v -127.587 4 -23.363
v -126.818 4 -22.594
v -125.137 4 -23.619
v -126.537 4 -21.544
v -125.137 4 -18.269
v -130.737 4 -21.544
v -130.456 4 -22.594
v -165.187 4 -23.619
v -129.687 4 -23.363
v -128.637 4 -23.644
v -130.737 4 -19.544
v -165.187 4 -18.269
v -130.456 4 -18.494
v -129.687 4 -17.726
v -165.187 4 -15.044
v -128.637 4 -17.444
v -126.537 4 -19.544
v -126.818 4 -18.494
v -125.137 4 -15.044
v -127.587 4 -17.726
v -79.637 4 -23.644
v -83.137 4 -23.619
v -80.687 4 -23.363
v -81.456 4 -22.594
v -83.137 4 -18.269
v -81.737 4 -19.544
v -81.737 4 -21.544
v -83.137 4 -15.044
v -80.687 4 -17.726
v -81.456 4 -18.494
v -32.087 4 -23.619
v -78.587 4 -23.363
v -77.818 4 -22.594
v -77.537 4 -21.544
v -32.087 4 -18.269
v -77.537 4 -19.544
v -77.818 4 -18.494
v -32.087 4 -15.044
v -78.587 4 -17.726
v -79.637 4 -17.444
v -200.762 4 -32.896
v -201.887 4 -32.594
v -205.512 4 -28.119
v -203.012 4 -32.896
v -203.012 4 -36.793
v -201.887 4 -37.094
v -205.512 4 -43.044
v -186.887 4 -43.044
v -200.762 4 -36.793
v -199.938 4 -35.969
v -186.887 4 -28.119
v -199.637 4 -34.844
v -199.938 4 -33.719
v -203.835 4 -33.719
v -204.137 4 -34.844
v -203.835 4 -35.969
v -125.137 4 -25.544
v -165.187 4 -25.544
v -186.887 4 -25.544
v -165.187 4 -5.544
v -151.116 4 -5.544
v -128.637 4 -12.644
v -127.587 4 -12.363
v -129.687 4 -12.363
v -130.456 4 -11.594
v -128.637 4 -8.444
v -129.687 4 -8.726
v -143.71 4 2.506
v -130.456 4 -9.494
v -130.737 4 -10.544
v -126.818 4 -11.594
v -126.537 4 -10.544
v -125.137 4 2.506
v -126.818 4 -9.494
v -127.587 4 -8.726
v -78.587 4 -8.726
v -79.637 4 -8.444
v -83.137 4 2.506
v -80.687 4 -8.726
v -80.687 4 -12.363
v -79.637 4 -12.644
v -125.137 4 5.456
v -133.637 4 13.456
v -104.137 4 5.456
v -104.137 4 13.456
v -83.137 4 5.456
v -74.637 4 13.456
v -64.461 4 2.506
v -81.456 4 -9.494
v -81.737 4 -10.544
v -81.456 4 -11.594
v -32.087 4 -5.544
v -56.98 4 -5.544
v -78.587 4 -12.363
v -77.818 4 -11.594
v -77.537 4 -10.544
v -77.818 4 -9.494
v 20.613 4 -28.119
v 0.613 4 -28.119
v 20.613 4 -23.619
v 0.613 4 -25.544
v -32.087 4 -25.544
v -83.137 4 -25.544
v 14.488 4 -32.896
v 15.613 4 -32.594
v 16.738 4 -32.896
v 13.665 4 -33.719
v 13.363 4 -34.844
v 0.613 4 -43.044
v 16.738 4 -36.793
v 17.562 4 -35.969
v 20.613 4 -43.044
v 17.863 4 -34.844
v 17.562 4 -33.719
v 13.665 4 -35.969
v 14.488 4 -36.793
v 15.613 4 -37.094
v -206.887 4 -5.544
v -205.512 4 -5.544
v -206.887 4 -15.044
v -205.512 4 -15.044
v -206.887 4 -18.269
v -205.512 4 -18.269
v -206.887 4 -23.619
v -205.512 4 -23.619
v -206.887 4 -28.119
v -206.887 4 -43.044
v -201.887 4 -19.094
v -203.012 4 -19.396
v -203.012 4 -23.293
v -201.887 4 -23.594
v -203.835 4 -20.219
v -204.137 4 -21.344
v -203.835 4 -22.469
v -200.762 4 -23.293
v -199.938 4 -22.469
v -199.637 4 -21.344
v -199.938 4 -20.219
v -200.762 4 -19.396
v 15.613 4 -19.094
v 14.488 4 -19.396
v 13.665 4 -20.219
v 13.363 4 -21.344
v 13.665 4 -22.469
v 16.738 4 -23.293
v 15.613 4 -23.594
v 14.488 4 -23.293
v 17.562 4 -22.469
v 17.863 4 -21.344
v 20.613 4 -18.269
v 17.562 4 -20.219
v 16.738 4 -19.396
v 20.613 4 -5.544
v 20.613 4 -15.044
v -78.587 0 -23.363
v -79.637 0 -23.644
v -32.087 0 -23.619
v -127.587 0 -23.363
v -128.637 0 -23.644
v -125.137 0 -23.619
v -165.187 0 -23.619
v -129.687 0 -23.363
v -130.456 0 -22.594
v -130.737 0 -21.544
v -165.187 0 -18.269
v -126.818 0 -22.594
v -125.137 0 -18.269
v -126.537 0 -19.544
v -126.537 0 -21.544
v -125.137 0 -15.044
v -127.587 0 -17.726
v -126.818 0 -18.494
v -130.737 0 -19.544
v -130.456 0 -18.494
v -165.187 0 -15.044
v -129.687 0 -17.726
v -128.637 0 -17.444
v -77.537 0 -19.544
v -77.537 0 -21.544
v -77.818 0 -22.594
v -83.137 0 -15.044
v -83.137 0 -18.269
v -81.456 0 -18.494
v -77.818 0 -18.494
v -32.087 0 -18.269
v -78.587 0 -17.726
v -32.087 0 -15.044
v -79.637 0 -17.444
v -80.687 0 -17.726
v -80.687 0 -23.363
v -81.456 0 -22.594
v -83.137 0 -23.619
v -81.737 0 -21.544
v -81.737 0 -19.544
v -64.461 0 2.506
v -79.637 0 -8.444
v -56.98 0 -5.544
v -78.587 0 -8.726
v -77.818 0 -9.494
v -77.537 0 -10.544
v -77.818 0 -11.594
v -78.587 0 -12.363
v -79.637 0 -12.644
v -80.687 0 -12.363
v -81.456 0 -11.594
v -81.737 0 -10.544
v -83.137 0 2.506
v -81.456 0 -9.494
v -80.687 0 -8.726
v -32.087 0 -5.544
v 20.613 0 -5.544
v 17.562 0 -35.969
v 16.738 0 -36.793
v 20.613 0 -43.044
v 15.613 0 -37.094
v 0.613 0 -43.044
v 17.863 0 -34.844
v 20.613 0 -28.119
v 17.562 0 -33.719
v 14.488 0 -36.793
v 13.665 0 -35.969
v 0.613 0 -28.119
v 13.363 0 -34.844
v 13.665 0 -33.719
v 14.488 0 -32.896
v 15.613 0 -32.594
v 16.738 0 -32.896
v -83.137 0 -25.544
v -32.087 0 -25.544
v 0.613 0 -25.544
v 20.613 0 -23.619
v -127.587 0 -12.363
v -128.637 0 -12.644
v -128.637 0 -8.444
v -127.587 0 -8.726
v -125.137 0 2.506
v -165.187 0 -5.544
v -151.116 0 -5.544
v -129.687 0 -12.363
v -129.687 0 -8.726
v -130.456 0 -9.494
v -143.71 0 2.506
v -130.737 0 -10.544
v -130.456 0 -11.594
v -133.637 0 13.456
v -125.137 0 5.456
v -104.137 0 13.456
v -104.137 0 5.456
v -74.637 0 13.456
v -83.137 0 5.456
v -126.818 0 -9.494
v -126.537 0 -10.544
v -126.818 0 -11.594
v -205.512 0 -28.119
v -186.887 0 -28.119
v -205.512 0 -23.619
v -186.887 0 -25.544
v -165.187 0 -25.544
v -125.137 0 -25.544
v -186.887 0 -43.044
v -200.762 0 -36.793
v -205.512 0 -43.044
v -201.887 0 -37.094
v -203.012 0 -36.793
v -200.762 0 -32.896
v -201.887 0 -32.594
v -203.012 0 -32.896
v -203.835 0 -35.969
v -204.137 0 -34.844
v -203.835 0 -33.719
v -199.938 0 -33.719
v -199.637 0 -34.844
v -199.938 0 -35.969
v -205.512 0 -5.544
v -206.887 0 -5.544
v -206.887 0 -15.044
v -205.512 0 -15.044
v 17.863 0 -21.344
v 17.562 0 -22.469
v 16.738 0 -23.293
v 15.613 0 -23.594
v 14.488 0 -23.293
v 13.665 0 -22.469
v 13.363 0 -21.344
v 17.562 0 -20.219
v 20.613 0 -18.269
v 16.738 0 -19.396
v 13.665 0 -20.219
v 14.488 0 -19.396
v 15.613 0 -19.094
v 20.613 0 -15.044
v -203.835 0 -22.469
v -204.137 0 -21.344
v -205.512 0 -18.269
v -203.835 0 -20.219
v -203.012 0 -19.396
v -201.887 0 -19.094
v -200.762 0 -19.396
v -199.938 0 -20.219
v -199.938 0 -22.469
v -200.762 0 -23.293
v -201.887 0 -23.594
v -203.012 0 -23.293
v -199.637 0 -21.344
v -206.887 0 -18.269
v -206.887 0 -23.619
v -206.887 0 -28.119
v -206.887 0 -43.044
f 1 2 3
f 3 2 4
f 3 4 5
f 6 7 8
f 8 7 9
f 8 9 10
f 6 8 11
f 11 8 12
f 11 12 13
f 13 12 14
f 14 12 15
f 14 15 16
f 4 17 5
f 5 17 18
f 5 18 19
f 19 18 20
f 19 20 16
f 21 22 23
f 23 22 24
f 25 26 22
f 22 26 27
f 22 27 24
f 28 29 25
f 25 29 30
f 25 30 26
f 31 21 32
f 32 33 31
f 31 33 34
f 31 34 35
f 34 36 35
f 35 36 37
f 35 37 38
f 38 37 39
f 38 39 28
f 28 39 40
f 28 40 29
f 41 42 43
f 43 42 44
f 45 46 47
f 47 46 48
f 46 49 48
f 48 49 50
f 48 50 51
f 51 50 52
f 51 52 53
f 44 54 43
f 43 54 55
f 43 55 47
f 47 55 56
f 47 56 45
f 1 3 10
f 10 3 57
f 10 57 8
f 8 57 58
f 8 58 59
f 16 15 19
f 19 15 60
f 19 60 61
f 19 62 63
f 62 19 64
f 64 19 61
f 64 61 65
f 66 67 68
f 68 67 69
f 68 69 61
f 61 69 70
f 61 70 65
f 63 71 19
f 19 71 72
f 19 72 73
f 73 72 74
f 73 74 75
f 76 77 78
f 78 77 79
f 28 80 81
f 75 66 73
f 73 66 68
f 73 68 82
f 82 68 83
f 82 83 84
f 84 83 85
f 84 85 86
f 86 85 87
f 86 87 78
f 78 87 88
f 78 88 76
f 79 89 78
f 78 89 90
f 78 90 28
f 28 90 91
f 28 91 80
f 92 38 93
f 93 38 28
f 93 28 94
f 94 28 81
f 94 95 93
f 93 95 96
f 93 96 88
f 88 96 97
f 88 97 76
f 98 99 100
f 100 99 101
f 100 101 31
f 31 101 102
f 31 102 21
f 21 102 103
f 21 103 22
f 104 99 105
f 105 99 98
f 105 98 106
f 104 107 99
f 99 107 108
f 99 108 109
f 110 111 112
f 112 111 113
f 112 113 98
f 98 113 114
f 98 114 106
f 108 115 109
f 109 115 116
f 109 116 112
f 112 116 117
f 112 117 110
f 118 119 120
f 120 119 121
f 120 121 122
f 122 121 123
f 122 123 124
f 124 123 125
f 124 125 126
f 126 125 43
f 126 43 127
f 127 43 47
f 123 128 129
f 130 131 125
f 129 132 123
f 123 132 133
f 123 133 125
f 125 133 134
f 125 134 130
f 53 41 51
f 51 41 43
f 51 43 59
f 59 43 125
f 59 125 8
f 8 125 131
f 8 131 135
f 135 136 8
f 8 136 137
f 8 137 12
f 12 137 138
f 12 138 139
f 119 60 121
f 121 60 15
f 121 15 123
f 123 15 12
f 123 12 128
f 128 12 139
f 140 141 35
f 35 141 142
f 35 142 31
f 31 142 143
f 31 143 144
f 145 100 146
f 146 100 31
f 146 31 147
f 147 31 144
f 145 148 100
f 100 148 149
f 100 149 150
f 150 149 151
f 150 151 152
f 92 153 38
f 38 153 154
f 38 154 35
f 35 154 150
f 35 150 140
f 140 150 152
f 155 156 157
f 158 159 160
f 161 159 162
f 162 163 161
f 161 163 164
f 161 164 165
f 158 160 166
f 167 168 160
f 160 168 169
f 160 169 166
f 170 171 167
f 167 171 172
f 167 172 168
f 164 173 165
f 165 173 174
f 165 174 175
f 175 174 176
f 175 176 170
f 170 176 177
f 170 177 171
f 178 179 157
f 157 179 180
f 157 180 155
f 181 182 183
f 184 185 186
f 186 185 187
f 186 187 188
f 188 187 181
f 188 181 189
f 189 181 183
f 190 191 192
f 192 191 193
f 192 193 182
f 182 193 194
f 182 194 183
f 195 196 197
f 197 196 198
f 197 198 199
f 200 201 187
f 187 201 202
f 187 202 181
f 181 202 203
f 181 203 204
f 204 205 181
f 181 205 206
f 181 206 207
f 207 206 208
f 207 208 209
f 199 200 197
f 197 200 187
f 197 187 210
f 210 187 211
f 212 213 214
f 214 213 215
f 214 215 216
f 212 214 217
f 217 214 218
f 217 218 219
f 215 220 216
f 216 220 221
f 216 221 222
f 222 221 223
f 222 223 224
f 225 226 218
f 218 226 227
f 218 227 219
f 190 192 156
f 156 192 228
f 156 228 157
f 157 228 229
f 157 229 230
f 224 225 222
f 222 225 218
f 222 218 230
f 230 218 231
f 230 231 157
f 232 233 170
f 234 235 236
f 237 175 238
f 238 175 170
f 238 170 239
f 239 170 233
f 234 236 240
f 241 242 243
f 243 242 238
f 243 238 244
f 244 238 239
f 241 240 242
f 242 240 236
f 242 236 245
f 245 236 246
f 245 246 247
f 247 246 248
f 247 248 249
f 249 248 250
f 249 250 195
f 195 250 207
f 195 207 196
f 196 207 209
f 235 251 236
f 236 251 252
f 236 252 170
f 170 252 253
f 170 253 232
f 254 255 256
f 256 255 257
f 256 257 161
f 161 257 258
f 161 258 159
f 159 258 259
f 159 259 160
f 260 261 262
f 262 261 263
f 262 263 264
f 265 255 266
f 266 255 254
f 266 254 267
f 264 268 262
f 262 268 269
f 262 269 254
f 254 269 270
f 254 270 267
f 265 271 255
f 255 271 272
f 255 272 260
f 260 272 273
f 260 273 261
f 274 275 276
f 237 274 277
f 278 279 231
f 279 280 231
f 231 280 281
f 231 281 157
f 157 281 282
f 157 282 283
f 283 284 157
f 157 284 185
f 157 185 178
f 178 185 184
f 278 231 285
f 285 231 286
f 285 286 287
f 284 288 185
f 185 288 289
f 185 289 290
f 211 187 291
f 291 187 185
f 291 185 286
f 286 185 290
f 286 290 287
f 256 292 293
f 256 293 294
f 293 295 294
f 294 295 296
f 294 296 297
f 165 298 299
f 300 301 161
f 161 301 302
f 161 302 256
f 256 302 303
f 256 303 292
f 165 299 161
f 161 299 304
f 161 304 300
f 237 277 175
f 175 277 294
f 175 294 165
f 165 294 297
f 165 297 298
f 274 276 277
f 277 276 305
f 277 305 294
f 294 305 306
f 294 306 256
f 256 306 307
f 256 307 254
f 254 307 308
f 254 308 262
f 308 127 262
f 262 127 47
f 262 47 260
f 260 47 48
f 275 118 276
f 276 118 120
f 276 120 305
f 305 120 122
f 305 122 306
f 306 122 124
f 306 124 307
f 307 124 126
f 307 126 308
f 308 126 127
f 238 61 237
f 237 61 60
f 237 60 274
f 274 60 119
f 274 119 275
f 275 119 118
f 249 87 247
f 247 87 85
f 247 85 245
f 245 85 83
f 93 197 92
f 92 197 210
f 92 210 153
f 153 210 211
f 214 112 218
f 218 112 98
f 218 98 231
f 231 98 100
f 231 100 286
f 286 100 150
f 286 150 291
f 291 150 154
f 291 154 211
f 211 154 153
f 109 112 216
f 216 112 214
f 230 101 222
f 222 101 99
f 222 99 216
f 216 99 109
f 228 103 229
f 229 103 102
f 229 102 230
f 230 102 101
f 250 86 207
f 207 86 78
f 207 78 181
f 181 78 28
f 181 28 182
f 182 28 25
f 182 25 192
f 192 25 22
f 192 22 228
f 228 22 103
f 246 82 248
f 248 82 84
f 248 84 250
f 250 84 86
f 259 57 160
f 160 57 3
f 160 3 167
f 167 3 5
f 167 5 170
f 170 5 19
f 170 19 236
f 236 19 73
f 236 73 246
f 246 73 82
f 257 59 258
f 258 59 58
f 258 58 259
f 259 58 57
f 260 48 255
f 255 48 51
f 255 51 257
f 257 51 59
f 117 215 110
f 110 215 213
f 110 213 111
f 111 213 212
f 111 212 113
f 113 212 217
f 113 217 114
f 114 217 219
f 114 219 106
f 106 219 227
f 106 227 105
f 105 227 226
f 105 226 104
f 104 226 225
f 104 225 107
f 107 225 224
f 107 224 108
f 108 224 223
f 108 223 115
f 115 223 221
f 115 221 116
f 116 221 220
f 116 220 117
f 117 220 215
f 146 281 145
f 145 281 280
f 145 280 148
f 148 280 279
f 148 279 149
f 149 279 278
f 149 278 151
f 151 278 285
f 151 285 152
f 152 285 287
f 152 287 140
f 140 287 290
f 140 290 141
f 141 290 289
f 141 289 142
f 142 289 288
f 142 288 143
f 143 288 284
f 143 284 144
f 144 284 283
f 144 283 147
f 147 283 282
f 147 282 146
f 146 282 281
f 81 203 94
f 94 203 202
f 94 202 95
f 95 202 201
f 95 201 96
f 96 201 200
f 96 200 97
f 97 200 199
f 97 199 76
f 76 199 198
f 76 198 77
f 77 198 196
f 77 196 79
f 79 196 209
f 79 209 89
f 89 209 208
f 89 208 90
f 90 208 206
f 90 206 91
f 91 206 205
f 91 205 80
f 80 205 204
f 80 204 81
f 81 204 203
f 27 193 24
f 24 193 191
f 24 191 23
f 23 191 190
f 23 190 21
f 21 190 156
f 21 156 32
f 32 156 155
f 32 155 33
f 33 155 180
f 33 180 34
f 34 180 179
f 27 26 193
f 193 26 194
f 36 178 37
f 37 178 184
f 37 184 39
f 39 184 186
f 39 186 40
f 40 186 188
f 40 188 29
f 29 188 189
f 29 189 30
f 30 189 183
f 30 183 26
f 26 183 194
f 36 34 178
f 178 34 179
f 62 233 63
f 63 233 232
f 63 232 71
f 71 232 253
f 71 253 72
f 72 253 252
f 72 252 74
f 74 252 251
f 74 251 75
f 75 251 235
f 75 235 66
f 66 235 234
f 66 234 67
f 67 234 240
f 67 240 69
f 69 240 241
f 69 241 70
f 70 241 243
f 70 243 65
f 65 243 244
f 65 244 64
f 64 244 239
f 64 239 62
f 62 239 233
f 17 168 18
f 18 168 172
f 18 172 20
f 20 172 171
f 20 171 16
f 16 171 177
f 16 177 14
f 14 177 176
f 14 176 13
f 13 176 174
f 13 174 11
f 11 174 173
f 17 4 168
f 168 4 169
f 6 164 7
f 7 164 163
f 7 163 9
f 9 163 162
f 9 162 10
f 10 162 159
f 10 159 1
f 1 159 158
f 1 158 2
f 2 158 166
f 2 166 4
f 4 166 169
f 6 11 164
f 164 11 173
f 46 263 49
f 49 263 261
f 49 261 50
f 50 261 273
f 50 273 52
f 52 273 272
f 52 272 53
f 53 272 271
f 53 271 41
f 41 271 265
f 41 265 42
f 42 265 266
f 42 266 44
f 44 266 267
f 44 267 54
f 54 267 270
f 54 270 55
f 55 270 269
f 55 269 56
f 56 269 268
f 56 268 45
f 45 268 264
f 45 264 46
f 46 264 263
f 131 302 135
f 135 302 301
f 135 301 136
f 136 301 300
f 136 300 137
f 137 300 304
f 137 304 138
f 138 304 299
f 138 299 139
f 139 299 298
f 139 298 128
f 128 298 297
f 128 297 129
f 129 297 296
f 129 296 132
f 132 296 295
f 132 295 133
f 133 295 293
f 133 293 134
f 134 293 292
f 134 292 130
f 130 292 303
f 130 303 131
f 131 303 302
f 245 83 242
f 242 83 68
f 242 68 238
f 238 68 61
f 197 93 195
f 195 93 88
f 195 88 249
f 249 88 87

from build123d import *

# Parameters (mm, degrees)
SKETCH_1_R      = 2.25
SKETCH_1_R_2    = 2.1
EXTRUDE_1_DEPTH = 4
EXTRUDE_2_DEPTH = 4


with BuildPart() as part:
    # 草图1 → 凸台-拉伸1 (new body)
    with BuildSketch(Plane(origin=(0, 0, 0), x_dir=(1, 0, 0), z_dir=(0, 1, 0))):
        Polygon((-83.136892884, -5.45556523), (-125.136892884, -5.45556523), (-125.136892884, 25.54443477), (-186.886892884, 25.54443477), (-186.886892884, 43.04443477), (-206.886892884, 43.04443477), (-206.886892884, 5.54443477), (-189.553457543, 5.54443477), (-133.636892884, 5.54443477), (-133.636892884, -13.45556523), (-74.636892884, -13.45556523), (-74.636892884, 5.54443477), (1.279671775, 5.54443477), (20.613107116, 5.54443477), (20.613107116, 13.09443477), (20.613107116, 43.04443477), (0.613107116, 43.04443477), (0.613107116, 25.54443477), (-74.636892884, 25.54443477), (-83.136892884, 25.54443477), align=None)
        with Locations((15.613107116, 34.84443477)):
            Circle(SKETCH_1_R, mode=Mode.SUBTRACT)
        with Locations((15.613107116, 21.34443477)):
            Circle(SKETCH_1_R, mode=Mode.SUBTRACT)
        with Locations((-79.636892884, 10.54443477)):
            Circle(SKETCH_1_R_2, mode=Mode.SUBTRACT)
        with Locations((-128.636892884, 10.54443477)):
            Circle(SKETCH_1_R_2, mode=Mode.SUBTRACT)
        with Locations((-201.886892884, 34.84443477)):
            Circle(SKETCH_1_R, mode=Mode.SUBTRACT)
        with Locations((-201.886892884, 21.34443477)):
            Circle(SKETCH_1_R, mode=Mode.SUBTRACT)
        with BuildLine():
            Line((-81.736892884, 21.54443477), (-81.736892884, 19.54443477))
            ThreePointArc((-81.736892884, 19.54443477), (-79.636892884, 17.44443477), (-77.536892884, 19.54443477))
            Line((-77.536892884, 19.54443477), (-77.536892884, 21.54443477))
            ThreePointArc((-77.536892884, 21.54443477), (-79.636892884, 23.64443477), (-81.736892884, 21.54443477))
        make_face(mode=Mode.SUBTRACT)
        with BuildLine():
            Line((-130.736892884, 21.54443477), (-130.736892884, 19.54443477))
            ThreePointArc((-130.736892884, 19.54443477), (-128.636892884, 17.44443477), (-126.536892884, 19.54443477))
            Line((-126.536892884, 19.54443477), (-126.536892884, 21.54443477))
            ThreePointArc((-126.536892884, 21.54443477), (-128.636892884, 23.64443477), (-130.736892884, 21.54443477))
        make_face(mode=Mode.SUBTRACT)
    extrude(amount=EXTRUDE_1_DEPTH)

    # 草图4 → 凸台-拉伸2 (add)
    with BuildSketch(Plane(origin=(0, 4, 0), x_dir=(1, 0, 0), z_dir=(0, 1, 0))):
        Polygon((-133.636892884, -13.45556523), (-151.115738533, 5.54443477), (-133.636892884, 5.54443477), align=None)
        Polygon((-74.636892884, -13.45556523), (-74.636892884, 5.54443477), (-56.979755625, 5.54443477), align=None)
    extrude(amount=-EXTRUDE_2_DEPTH)


solid = part.part
